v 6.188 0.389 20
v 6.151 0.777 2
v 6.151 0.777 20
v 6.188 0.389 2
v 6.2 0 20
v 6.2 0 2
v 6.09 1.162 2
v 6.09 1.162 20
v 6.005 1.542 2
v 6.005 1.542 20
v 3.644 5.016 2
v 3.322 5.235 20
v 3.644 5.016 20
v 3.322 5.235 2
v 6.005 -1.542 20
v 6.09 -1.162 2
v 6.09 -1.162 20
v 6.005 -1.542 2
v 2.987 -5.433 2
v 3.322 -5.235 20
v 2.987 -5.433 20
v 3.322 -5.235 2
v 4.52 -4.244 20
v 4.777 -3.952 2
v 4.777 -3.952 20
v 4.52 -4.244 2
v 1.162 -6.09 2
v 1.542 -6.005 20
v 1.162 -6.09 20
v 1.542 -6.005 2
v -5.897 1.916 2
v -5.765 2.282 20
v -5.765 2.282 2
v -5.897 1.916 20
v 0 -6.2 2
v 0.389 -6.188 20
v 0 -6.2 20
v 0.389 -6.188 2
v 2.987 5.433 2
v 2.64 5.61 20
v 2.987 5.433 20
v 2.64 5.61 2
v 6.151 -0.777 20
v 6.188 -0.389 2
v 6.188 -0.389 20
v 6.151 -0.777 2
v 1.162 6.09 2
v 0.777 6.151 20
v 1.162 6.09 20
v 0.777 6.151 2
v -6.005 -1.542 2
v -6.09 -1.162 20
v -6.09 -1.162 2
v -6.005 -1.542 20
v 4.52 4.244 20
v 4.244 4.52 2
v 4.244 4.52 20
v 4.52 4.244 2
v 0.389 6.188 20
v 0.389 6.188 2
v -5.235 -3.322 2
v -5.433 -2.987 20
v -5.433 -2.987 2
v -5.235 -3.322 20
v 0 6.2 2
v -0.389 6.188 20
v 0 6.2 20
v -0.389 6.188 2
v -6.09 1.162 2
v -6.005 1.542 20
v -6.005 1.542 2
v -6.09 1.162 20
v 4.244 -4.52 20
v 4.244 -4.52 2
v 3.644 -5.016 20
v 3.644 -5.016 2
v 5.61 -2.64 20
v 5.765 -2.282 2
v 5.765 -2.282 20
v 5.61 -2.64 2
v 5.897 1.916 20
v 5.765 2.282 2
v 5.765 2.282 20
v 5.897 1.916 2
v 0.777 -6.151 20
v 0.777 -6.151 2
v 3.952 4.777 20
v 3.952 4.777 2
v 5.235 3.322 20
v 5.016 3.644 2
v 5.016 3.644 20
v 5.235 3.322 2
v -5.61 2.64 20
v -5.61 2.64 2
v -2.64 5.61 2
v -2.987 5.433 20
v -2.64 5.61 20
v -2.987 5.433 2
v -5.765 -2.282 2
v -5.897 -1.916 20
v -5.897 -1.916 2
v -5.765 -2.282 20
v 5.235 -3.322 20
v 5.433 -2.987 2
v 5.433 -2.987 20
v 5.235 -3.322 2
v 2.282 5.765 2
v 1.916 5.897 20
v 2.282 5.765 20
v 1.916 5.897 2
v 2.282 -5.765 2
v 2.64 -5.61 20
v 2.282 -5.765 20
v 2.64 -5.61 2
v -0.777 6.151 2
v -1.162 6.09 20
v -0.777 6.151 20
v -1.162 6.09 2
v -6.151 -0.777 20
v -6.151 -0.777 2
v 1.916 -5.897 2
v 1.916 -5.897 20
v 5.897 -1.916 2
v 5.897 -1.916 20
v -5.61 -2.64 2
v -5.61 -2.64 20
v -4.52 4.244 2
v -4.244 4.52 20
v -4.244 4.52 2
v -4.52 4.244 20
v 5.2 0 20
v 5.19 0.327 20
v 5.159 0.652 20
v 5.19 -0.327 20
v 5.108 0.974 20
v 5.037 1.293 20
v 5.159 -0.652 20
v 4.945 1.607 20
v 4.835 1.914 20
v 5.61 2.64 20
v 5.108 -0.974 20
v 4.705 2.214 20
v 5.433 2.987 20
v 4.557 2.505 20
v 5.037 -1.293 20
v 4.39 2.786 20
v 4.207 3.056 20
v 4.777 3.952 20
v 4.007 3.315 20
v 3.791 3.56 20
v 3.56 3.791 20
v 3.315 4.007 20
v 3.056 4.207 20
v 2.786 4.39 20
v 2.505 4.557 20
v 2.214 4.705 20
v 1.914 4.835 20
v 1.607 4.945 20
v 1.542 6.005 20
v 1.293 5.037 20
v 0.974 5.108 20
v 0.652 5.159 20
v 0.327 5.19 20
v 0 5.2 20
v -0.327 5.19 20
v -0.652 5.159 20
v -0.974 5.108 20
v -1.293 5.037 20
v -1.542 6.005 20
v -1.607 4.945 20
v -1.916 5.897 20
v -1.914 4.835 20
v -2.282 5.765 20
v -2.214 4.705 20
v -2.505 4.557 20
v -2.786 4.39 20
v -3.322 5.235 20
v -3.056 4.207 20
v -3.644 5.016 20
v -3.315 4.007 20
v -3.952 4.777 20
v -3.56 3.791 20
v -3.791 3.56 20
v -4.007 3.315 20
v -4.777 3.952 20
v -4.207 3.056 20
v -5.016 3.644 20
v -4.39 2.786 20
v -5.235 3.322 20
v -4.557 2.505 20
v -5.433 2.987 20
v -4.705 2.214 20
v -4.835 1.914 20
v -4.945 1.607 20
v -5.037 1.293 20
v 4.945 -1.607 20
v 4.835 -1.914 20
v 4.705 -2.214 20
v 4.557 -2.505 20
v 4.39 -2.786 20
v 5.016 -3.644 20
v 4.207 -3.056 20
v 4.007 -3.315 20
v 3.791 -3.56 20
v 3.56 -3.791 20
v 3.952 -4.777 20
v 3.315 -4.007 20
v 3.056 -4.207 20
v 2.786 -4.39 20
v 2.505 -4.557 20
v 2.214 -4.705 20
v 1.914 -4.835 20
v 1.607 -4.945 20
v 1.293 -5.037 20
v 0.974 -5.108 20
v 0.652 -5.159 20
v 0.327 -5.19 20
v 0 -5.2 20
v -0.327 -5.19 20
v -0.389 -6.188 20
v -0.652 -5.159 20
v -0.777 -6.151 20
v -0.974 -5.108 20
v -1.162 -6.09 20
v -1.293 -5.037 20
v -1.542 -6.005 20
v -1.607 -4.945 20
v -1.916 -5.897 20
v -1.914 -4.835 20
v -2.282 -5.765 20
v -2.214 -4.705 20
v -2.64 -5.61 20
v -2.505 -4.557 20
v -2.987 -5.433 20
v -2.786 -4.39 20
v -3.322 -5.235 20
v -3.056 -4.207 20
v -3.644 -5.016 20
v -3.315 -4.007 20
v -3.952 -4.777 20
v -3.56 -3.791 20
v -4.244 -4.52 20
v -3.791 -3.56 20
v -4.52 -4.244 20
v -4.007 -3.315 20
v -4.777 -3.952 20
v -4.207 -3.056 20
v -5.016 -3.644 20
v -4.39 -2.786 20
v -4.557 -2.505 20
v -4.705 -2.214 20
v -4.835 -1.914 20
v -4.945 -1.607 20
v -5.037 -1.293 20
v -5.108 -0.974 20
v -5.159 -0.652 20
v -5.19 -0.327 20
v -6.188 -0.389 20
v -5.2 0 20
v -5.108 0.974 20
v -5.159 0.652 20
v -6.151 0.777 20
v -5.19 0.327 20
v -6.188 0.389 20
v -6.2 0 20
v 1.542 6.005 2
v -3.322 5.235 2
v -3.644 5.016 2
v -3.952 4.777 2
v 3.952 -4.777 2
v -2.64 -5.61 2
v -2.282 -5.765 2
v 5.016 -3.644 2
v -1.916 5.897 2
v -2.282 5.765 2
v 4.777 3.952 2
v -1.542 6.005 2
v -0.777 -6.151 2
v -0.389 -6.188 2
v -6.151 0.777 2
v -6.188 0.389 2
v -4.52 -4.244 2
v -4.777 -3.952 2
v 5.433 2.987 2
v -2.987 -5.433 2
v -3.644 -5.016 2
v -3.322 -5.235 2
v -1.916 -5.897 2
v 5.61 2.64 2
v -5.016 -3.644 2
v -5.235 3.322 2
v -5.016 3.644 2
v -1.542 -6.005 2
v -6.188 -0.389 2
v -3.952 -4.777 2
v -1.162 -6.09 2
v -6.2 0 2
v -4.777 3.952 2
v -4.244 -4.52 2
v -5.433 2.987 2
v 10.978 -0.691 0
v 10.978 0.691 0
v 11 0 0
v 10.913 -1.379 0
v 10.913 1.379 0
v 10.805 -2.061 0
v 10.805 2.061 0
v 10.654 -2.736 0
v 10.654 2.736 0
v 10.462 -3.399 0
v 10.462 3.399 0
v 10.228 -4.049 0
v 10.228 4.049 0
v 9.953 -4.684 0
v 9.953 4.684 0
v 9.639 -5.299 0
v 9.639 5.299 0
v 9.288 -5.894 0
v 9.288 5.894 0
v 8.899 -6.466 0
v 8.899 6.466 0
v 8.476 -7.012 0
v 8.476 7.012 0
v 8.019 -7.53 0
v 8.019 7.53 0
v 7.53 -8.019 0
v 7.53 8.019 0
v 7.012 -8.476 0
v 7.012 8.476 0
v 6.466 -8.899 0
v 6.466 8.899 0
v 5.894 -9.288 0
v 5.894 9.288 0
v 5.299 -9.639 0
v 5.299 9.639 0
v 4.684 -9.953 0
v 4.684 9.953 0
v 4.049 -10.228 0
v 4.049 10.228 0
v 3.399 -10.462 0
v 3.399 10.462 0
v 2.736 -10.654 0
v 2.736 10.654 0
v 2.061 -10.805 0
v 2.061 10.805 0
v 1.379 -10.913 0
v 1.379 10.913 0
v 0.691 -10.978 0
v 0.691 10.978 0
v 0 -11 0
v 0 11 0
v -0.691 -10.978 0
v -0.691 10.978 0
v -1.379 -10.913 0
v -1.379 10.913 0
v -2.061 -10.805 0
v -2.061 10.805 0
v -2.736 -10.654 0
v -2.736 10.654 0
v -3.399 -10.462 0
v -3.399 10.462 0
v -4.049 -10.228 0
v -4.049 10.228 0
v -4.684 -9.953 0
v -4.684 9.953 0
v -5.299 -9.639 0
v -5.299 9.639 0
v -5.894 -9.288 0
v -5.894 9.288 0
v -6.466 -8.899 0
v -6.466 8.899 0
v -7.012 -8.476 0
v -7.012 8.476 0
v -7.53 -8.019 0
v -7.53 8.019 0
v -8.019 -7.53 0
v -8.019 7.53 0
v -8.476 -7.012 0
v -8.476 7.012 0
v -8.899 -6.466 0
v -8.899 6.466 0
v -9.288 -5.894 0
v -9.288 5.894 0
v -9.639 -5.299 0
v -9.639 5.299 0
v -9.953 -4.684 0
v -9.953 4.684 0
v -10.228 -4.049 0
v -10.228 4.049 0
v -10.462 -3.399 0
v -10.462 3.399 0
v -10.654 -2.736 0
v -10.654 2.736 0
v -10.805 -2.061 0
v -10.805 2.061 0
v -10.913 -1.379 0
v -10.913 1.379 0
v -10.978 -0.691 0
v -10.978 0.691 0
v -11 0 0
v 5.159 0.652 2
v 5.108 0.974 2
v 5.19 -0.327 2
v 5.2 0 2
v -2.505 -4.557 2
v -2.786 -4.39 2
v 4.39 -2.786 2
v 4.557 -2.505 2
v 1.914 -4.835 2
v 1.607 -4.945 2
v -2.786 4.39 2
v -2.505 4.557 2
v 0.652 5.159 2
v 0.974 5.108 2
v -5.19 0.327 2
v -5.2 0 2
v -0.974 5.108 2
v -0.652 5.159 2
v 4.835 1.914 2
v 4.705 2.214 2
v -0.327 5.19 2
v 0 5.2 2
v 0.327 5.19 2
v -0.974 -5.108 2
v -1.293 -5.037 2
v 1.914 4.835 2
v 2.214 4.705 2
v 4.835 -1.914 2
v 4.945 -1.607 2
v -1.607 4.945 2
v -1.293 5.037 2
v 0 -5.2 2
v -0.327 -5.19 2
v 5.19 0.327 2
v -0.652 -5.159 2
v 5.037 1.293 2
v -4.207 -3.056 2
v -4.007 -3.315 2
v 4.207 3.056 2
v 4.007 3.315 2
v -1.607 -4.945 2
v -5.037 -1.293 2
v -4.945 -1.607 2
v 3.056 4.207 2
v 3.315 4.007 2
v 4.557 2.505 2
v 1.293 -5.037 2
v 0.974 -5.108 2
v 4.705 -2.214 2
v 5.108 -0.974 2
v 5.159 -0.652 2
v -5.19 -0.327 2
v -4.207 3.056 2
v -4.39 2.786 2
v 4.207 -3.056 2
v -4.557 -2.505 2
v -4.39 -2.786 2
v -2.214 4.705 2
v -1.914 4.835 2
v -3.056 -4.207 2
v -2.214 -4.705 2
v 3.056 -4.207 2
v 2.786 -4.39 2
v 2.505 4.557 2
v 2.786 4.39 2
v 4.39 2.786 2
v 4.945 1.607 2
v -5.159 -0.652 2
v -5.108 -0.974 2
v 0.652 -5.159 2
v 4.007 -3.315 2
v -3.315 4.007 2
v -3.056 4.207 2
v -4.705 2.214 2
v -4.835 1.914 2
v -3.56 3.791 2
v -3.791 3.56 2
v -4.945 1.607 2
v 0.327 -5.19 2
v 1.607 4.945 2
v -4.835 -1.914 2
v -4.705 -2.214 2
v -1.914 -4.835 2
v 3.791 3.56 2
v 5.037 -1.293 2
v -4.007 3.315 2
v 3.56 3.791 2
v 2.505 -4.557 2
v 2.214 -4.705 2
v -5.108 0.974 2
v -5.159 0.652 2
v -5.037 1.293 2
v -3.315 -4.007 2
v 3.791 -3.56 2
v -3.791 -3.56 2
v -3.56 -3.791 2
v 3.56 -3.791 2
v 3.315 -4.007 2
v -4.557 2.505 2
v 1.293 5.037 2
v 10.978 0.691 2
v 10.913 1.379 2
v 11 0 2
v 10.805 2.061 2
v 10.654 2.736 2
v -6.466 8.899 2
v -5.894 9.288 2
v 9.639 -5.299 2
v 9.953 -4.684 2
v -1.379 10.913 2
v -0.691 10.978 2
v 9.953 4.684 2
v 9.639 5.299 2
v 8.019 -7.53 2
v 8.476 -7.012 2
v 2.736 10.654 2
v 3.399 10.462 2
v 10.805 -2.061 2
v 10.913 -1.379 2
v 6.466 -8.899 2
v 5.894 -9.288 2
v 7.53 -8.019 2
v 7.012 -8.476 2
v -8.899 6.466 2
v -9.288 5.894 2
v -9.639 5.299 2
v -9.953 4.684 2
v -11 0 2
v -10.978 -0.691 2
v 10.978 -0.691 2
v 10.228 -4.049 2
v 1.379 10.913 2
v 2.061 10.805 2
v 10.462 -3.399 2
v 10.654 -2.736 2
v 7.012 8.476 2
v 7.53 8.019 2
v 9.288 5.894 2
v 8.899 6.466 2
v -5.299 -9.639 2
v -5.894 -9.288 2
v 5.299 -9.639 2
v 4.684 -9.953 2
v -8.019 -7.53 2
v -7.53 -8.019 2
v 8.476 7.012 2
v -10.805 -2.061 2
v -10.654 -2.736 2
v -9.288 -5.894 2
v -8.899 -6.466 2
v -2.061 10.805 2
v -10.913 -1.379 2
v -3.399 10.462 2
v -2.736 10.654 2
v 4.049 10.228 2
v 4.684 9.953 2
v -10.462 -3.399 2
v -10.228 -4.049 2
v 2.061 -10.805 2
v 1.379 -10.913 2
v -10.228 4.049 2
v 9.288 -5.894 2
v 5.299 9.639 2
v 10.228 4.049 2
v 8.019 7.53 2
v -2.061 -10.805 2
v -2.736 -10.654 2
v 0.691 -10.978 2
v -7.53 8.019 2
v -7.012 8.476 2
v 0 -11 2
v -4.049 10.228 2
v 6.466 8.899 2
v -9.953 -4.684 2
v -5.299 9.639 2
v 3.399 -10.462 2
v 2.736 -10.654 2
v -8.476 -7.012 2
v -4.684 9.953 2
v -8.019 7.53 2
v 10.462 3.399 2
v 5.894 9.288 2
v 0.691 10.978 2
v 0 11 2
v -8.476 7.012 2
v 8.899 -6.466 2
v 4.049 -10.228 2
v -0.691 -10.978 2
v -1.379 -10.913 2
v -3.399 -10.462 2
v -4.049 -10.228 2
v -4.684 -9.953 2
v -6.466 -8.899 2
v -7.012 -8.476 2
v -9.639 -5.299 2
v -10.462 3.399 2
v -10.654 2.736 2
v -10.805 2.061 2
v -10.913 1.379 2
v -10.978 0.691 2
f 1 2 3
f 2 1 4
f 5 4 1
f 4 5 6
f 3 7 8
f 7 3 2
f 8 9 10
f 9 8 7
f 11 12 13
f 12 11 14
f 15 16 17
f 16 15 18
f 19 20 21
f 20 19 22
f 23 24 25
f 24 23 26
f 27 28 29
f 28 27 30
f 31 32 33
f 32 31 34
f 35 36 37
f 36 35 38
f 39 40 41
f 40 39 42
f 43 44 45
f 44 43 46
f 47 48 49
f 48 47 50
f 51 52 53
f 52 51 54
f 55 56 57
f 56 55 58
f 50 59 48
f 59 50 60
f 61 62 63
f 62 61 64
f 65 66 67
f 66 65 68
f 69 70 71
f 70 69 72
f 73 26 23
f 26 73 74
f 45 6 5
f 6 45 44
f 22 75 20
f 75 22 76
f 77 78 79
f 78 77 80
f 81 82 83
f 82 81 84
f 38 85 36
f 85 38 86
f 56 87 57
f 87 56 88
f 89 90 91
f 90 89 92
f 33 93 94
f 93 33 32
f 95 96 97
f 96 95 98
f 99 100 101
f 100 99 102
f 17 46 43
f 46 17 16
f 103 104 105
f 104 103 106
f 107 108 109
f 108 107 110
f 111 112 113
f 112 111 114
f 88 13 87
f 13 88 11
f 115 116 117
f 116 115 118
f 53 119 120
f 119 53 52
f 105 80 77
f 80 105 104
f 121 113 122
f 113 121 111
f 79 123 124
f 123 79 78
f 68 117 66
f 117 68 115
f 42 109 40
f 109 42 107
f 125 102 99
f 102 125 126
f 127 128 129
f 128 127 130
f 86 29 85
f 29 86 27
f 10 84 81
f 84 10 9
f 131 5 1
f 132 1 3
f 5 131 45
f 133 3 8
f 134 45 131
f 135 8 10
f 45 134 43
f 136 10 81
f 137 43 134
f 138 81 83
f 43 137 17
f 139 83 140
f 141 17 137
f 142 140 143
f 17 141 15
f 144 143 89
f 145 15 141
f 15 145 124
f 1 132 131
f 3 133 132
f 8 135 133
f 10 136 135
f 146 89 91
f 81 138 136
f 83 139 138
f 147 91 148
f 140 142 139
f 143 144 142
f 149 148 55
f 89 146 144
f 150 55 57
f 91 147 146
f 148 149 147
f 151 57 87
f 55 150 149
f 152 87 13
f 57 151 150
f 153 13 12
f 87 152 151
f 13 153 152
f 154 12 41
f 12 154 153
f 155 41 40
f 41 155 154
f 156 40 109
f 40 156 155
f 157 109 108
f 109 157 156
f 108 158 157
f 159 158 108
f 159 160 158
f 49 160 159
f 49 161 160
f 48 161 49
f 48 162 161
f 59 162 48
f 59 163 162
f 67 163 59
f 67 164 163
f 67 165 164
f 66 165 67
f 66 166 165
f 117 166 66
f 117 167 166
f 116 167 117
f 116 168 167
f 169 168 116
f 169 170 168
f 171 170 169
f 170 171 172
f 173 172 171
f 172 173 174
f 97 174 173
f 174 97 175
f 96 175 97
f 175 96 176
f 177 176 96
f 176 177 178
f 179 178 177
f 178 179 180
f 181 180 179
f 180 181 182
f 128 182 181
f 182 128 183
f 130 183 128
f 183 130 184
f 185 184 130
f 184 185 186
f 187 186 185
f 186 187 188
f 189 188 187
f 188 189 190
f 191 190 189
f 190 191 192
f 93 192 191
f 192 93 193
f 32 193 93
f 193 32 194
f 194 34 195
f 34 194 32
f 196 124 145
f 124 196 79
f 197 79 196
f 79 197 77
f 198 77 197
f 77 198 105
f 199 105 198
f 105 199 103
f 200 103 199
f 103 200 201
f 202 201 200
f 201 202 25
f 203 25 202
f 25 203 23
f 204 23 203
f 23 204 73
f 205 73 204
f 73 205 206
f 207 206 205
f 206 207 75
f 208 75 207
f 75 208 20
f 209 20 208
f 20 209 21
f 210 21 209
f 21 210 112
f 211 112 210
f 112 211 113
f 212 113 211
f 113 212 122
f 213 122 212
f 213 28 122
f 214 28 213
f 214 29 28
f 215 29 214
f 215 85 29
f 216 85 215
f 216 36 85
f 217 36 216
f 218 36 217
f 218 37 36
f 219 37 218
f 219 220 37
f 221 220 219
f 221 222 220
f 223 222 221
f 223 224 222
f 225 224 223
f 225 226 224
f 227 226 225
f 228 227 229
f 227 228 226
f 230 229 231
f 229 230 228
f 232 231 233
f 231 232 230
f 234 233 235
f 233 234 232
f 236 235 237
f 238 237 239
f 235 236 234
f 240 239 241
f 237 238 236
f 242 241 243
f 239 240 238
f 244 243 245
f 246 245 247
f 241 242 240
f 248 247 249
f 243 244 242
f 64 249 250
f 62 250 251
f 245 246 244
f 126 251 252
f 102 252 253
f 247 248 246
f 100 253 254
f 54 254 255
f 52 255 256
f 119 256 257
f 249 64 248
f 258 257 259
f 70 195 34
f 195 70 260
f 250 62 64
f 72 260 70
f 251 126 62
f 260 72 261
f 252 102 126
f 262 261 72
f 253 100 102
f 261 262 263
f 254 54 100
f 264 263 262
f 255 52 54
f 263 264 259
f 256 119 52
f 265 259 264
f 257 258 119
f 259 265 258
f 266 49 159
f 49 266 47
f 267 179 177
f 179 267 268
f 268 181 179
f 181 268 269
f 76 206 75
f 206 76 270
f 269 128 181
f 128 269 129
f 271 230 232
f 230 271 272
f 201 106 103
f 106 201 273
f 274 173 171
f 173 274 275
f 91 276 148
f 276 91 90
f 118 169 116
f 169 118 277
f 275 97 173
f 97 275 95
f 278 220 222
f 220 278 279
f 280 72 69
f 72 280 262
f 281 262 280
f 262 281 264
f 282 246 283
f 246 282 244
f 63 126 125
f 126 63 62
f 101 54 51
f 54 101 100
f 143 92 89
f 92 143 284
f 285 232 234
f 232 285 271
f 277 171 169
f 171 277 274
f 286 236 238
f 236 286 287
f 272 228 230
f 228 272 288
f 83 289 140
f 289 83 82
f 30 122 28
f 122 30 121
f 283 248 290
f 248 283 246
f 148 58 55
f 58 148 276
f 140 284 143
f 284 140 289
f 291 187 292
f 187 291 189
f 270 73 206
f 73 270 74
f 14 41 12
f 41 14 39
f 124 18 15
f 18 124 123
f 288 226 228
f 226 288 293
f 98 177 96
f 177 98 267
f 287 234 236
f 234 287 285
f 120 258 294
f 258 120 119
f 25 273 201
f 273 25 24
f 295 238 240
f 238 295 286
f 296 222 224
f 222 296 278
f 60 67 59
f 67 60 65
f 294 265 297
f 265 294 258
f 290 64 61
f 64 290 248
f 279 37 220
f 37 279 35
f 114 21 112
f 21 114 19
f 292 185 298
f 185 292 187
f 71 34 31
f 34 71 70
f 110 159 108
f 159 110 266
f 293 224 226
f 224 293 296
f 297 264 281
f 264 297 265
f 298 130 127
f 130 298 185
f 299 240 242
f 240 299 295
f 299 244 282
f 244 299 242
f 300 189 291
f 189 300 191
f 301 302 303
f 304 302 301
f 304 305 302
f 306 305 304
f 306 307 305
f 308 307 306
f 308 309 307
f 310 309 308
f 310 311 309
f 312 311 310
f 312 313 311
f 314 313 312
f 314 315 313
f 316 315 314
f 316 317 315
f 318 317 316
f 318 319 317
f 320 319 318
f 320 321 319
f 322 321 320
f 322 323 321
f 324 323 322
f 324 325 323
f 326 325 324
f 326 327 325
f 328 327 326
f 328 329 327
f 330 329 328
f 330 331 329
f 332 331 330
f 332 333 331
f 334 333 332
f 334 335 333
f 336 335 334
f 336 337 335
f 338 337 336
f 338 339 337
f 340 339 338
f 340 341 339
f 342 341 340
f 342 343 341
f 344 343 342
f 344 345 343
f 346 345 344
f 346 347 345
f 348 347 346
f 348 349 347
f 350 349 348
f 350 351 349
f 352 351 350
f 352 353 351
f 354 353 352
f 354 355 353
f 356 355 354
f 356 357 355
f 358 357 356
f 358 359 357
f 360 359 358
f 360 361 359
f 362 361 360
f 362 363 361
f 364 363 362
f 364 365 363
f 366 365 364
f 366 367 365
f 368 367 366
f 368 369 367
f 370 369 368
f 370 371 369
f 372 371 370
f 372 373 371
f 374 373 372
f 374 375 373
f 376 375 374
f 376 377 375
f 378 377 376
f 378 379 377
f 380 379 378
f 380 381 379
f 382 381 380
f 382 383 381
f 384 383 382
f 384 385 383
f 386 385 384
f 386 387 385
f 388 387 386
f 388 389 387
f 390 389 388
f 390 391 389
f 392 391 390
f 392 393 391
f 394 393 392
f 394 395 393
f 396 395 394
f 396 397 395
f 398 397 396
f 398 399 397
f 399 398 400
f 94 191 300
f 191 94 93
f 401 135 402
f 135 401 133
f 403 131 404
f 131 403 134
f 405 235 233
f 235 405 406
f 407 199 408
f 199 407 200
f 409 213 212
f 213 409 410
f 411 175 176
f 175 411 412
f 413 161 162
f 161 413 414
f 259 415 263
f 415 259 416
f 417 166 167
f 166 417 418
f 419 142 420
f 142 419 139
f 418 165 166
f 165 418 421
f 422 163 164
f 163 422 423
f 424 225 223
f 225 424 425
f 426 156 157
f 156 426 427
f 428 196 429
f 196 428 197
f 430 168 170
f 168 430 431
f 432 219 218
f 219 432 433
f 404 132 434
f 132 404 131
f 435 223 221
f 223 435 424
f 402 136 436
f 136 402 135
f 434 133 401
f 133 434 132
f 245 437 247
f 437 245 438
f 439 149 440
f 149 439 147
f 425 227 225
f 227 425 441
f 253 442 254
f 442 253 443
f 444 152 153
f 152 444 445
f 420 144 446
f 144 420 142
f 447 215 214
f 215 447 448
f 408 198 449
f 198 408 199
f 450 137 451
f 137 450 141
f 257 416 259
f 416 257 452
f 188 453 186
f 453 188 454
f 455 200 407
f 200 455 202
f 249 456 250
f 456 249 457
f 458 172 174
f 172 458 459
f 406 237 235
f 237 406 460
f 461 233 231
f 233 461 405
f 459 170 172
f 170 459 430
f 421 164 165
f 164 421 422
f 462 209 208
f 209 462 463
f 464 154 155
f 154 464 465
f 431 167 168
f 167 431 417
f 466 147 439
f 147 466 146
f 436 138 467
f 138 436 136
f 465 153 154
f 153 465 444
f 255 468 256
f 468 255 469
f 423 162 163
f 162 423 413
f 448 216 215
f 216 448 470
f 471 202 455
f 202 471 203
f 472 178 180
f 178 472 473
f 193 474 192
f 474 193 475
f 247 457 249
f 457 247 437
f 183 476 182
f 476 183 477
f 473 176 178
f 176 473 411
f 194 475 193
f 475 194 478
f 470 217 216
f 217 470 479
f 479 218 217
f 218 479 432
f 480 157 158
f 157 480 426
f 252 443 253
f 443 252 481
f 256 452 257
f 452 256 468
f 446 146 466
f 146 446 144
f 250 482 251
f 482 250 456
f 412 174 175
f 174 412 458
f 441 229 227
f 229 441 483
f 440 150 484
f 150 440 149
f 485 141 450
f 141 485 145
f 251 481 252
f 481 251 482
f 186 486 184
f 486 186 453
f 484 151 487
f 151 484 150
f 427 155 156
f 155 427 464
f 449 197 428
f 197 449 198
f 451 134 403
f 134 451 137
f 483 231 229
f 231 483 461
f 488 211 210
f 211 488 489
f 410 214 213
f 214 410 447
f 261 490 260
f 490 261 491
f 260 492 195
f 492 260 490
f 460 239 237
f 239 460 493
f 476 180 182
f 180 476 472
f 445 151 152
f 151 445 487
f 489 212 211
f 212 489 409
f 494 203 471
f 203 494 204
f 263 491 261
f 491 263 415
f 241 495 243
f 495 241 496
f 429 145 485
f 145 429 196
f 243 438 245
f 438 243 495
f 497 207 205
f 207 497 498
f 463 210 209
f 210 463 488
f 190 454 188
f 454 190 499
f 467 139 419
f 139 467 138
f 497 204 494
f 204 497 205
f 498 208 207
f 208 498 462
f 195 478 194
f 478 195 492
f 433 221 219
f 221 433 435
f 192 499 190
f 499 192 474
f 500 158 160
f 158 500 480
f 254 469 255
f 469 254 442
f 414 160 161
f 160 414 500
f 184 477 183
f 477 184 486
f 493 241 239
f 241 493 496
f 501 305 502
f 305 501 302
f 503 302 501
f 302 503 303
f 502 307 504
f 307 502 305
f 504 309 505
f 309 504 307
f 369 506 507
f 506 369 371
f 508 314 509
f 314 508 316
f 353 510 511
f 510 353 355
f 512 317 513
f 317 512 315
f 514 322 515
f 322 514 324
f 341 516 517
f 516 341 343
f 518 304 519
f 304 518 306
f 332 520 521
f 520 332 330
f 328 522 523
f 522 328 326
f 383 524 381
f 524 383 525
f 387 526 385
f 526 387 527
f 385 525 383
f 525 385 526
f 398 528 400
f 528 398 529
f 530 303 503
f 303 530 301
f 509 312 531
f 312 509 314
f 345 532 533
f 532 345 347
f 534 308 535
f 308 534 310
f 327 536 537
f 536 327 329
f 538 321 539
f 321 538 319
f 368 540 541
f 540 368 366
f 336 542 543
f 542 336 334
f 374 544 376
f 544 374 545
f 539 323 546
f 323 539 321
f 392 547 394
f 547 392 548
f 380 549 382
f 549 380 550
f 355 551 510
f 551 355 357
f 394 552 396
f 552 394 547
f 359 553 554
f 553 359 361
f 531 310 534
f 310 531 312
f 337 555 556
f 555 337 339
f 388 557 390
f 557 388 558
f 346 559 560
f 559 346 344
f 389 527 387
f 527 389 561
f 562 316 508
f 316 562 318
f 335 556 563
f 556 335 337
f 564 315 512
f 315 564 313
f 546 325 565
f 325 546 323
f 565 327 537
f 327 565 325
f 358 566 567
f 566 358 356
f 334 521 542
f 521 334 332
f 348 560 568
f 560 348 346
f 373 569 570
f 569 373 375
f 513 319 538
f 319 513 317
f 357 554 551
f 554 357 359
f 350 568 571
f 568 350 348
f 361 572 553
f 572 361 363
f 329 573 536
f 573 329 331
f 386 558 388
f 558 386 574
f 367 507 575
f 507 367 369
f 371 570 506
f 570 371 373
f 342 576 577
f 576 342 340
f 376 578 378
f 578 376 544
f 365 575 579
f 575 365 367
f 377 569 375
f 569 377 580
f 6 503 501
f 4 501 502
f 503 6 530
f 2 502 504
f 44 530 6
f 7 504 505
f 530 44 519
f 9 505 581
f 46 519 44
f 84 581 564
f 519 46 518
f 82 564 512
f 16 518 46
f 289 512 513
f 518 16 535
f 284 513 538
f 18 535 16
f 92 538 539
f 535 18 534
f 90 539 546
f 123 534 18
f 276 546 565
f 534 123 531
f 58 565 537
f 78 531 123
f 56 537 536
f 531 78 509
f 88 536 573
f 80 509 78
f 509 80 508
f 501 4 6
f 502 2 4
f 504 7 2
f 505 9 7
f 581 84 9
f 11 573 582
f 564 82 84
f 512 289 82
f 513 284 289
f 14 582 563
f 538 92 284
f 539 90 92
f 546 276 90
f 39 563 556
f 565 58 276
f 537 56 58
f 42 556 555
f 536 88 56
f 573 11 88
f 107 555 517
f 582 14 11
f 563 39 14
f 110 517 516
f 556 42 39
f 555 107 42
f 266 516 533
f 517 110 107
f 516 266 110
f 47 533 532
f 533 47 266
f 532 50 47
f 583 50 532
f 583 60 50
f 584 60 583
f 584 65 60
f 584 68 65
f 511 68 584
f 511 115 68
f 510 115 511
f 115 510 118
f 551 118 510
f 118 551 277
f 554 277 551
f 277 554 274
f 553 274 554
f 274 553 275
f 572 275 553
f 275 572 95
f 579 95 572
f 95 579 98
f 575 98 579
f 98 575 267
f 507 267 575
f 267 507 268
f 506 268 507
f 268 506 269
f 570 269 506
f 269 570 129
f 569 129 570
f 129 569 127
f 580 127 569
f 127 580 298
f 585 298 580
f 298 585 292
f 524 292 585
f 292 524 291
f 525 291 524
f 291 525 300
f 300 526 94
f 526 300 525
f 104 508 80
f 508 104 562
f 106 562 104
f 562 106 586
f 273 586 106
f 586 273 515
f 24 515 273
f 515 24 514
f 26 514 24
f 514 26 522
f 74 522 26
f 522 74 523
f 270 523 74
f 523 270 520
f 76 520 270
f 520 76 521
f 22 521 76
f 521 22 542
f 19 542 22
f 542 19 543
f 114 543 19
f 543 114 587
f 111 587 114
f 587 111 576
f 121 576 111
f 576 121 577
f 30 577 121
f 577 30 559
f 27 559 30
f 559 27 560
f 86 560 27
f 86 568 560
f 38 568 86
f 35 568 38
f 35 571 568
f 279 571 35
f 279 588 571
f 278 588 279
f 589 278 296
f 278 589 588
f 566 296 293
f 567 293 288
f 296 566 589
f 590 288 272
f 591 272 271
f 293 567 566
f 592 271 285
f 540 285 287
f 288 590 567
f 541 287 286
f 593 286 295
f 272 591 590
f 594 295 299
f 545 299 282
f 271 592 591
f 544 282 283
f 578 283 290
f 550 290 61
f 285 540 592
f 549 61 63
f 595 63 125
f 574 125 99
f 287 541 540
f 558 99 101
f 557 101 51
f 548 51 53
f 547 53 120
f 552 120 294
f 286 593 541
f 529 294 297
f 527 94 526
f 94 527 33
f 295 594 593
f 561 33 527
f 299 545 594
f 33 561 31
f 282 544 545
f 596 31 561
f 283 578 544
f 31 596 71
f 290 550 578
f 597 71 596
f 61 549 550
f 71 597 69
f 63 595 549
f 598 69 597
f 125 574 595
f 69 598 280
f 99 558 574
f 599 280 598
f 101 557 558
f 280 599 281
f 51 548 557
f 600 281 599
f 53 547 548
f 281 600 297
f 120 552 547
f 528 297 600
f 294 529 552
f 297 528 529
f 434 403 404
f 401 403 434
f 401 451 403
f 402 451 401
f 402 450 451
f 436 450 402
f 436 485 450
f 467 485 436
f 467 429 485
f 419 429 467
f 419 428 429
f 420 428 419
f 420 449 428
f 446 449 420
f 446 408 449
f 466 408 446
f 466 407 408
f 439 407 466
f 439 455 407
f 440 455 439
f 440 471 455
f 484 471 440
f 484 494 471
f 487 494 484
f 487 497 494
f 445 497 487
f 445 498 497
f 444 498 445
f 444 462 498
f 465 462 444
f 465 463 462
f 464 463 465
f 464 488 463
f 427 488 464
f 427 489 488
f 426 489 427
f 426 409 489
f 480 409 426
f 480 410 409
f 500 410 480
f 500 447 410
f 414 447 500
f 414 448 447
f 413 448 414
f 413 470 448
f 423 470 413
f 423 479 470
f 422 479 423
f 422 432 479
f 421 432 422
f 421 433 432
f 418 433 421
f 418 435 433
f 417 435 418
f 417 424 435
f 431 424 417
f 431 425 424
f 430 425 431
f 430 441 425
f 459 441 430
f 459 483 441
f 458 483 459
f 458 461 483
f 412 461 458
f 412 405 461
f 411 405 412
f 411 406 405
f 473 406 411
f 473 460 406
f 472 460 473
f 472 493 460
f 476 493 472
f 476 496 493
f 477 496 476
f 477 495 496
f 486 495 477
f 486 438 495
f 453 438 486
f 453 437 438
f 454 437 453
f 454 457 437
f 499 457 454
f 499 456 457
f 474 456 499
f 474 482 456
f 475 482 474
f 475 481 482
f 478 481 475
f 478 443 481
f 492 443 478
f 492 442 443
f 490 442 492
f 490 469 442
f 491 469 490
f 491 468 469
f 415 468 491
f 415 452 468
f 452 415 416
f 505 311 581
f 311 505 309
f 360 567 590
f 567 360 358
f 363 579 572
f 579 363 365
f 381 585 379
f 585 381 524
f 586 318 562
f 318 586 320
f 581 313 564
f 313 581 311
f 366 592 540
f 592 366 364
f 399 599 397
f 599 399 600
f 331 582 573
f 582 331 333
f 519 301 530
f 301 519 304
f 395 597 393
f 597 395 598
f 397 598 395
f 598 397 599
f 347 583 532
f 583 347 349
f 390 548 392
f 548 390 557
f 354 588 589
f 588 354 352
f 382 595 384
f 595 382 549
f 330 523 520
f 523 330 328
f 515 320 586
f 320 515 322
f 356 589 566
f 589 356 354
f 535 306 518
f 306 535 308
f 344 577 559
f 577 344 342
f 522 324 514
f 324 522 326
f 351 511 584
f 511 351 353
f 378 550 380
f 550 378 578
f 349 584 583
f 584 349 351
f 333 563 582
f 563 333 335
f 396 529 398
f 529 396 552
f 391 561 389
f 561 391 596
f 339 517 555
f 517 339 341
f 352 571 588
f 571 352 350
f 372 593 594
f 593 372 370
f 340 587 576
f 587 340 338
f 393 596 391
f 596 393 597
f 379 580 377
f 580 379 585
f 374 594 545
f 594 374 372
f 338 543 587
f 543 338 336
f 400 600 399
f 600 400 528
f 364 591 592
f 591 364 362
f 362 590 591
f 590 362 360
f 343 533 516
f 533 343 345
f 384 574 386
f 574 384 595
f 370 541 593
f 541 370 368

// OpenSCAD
$fn=100;

tolerance=0.4;
insideDiameter=10 + tolerance;
endStopLength=20;
thickness=2;
endStopDiameter=22;

union() {
    difference() {
        cylinder(h=endStopLength, d=insideDiameter+thickness);
        cylinder(h=endStopLength+thickness, d=insideDiameter);
    }
    cylinder(h=thickness, d=endStopDiameter);
}
